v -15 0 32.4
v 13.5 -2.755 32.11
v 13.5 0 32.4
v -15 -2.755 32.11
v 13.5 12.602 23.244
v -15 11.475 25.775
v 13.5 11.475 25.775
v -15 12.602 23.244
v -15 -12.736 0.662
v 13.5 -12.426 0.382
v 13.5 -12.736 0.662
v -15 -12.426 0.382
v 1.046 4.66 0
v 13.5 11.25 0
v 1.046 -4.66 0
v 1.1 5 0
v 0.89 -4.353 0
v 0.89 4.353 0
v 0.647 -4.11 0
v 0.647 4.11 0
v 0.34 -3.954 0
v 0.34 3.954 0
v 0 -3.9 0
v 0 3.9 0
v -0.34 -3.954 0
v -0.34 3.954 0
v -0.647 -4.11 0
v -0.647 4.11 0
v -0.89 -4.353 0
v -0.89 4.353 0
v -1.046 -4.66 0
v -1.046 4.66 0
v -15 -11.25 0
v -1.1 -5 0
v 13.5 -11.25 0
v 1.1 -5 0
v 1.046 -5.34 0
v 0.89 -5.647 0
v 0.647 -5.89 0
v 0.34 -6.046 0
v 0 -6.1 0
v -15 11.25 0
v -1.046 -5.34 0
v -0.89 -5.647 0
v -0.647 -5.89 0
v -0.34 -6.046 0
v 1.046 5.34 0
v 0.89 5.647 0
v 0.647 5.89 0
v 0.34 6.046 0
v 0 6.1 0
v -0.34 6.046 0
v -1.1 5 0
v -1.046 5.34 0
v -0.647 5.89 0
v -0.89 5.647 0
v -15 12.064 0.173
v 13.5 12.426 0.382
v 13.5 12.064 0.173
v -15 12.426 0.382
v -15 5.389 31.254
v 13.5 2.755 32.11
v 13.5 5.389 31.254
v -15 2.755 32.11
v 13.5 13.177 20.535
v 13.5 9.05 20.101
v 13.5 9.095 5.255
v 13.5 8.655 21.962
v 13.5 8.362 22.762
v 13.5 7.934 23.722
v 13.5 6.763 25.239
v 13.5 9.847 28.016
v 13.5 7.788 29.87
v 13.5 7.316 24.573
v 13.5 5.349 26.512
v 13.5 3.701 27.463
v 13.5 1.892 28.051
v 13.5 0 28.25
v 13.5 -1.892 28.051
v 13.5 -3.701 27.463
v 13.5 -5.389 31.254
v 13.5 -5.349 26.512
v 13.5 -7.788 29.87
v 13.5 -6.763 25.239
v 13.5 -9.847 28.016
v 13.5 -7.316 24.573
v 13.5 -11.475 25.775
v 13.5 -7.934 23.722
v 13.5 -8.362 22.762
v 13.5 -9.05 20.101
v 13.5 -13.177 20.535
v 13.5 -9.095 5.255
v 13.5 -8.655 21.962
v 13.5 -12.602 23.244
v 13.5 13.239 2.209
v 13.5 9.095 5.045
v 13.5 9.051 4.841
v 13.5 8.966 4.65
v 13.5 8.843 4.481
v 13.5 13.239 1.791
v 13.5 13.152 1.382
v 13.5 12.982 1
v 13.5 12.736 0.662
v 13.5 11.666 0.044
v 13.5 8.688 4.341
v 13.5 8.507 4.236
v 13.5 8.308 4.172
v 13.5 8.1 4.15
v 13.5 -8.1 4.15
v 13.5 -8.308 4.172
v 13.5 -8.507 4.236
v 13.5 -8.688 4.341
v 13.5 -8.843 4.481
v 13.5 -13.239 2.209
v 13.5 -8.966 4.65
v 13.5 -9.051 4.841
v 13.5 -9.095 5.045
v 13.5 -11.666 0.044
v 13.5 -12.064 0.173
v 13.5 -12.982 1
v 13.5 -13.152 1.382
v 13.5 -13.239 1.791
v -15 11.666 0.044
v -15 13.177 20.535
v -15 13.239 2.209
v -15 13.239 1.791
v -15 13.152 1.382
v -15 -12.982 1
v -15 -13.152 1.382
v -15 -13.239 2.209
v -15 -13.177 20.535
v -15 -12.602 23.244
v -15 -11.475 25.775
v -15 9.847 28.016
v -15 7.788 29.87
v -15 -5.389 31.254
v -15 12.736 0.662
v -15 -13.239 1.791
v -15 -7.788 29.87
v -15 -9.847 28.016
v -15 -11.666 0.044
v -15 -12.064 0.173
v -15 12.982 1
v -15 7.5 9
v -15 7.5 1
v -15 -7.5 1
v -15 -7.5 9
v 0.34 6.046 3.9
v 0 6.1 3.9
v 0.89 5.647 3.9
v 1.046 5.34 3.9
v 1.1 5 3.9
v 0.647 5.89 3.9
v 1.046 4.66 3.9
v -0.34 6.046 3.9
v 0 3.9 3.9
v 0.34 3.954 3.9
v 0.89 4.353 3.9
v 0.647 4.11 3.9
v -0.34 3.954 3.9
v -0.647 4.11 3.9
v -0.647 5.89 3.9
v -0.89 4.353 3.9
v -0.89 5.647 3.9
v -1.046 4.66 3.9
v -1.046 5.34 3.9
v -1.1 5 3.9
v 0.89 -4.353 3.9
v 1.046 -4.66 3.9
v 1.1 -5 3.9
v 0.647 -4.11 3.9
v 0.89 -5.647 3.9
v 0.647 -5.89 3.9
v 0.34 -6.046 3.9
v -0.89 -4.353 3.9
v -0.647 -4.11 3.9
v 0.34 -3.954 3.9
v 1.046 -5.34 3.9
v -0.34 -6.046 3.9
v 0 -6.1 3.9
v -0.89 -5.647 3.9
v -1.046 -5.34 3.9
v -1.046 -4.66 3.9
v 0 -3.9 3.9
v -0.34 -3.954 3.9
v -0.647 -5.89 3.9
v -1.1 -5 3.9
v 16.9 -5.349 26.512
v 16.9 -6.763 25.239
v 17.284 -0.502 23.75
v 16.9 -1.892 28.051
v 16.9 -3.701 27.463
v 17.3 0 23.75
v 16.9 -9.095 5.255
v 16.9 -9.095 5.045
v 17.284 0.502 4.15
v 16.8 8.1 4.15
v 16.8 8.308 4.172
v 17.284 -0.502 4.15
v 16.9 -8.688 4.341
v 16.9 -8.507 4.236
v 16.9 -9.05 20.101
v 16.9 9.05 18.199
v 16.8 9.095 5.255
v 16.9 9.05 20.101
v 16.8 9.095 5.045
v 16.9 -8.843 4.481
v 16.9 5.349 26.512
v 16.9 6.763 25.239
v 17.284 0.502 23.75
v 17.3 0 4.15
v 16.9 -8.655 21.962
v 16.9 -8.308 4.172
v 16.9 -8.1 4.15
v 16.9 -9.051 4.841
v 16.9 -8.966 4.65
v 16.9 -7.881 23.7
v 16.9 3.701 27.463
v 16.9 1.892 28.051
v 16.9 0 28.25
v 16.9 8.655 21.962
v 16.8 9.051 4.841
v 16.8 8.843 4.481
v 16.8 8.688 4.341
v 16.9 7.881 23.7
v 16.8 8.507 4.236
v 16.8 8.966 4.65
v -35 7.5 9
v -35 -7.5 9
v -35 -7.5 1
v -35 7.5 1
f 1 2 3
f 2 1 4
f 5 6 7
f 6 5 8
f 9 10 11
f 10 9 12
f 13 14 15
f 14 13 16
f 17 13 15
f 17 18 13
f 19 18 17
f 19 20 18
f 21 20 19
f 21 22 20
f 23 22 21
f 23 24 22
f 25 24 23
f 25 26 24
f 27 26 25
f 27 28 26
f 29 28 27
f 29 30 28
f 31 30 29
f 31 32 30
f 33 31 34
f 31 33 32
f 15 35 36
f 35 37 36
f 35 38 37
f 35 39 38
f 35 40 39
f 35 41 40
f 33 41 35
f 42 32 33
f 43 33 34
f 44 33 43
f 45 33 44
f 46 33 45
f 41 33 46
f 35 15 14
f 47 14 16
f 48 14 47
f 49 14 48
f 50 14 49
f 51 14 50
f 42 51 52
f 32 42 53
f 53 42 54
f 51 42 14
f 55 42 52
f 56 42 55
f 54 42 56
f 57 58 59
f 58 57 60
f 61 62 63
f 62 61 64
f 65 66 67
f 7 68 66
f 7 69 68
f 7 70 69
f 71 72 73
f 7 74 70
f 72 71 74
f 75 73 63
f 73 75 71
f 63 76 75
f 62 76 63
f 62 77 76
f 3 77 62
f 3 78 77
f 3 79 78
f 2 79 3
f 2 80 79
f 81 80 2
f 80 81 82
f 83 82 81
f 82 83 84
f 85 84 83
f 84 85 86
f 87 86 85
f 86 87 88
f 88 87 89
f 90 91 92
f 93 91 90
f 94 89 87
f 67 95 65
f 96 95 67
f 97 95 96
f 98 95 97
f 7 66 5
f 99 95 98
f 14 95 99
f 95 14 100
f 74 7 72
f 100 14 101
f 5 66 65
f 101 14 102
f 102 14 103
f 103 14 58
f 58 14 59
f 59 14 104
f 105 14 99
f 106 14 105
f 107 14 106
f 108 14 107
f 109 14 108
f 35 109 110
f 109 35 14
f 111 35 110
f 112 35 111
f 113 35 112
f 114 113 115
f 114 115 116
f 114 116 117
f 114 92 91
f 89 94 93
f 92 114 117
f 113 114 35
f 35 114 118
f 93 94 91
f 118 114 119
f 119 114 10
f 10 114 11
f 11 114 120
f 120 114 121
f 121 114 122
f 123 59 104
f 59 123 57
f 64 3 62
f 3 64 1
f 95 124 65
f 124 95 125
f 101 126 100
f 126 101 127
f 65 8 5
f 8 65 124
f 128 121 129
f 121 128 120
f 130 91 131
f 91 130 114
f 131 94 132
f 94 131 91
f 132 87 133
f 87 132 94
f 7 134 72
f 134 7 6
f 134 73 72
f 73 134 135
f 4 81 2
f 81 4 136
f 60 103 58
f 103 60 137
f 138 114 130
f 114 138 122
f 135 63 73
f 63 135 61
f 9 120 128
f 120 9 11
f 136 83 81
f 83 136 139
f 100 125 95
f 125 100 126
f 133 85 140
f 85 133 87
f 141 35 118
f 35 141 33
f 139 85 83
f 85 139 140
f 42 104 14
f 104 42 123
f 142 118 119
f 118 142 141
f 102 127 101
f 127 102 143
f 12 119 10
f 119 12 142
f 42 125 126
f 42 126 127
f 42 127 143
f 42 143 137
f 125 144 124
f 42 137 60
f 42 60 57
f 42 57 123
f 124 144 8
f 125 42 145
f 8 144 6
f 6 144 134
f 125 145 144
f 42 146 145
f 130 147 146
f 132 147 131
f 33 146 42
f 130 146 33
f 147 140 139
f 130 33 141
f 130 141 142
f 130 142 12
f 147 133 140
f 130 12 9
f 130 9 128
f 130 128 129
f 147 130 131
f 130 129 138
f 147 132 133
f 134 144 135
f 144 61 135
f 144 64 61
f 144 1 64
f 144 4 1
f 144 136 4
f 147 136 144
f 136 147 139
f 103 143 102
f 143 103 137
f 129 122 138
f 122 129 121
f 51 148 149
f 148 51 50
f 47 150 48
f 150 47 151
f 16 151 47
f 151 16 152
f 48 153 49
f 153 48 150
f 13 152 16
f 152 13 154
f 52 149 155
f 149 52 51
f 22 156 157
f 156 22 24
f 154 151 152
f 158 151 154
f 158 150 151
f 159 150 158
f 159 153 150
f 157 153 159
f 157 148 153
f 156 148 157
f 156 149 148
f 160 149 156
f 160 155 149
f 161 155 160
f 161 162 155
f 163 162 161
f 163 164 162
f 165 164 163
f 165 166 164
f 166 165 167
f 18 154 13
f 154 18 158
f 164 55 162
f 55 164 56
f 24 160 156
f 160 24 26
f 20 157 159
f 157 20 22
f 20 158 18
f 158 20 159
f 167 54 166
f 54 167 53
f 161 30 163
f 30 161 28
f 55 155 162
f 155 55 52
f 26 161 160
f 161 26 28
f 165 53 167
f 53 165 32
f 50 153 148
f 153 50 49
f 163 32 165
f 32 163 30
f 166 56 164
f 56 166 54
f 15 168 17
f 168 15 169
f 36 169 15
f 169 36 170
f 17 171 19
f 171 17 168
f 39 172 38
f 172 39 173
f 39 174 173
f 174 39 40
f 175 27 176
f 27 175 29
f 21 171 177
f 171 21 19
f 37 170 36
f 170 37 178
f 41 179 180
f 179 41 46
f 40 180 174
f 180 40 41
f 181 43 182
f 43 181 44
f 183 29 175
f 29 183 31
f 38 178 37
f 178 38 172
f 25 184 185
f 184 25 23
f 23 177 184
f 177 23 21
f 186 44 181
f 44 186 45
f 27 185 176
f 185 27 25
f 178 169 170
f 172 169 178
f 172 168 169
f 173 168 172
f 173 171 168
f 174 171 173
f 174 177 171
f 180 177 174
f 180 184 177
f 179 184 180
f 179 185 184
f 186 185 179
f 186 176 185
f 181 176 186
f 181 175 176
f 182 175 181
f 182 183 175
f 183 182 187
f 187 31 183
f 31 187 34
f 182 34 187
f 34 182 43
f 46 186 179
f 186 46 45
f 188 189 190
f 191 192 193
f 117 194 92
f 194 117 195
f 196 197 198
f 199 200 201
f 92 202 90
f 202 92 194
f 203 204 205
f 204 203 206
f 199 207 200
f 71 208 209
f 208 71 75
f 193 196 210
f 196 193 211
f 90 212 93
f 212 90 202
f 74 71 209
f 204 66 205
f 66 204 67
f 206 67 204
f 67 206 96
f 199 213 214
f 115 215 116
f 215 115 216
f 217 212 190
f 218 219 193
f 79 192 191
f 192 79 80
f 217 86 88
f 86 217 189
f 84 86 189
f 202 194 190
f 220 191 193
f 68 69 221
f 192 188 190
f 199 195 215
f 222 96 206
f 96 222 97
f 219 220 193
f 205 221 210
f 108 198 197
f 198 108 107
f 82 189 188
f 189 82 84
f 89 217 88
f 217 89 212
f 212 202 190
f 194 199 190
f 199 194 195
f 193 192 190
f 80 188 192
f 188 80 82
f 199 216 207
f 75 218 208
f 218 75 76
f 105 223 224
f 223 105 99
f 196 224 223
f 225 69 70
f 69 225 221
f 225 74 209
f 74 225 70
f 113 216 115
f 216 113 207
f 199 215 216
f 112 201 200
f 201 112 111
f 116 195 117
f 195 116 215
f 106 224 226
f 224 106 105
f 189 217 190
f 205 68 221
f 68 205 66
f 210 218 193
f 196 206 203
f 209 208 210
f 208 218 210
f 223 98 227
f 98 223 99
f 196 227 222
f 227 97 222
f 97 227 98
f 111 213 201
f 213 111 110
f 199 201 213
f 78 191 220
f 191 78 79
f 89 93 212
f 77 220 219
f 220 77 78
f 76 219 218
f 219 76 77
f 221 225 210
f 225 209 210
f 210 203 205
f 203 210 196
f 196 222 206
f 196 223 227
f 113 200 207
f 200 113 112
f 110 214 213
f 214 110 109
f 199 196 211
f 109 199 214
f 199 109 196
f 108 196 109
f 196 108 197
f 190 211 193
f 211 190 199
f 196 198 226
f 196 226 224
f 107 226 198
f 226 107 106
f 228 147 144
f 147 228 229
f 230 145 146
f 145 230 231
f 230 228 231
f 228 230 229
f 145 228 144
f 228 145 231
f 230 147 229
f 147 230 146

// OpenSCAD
/** simplified mesh for the Facebook DIGIT tactile sensor.
 * 
 * (c) 2022, fnh, hendrich@informatik.uni-hamburg.de
 */
 
 digit_sensor();
 
 
 /**
  * simplified model of the DIGIT sensor.
  * Sensor points towards +x, origin is at the bottom.
  */
 module digit_sensor( usb_connector=[20,15,8], M2_bore=2.2 ) {
   w = 26.5;
   h = 32.4;  // without top ridge
   hh = 33.7; // with ridge  
   l  = 28.5; // without gel
   ll = 32.3; // with gel
   gw = 18.2; // gel width
   gh = 24.6; // gel height
   ss = 10.0; // distance between screws
   sl = 15.0; // screw center from back face
   rb =  2.0; // bottom bevel radius
   uh =  5.0; 
   uw =  9.9;
   ur =  2.0;
   ul =  4.0;

   rc = w/2;  // radius of main housing
   rd = gw/2; // top radius of gel
   re = 1;    // bottom radius of gel part
   border = (w - gw) / 2;

   color( [0.5,0.1,0.1,0.8] )    
   translate( [-sl,0,0] ) 
   difference() {
     hull() {
       translate( [0,+w/2-rb,rb] ) 
         rotate( [0,90,0] ) 
           cylinder( r=rb, h=l, center=false, $fn=30 );
       translate( [0,-w/2+rb,rb] ) 
         rotate( [0,90,0] ) 
           cylinder( r=rb, h=l, center=false, $fn=30 );
       translate( [0,0,h-rc] ) 
         rotate( [0,90,0] ) 
           cylinder( r=rc, h=l, center=false, $fn=30 );
     }
     
     // mounting screws
     translate( [sl, +ss/2, -0.1] ) cylinder( d=M2_bore, h=4, center=false, $fn=20 );
     translate( [sl, -ss/2, -0.1] ) cylinder( d=M2_bore, h=4, center=false, $fn=20 );
   }
   
   color( "white" )
   translate( [-sl,0,0] ) 
   hull() {
     translate( [l,+gw/2-re,border+re] ) 
       rotate( [0,90,0] ) 
         cylinder( r=re, h=ll-l-0.5, center=false, $fn=30 );
     translate( [l,-gw/2+re,border+re] ) 
       rotate( [0,90,0] ) 
         cylinder( r=re, h=ll-l-0.4, center=false, $fn=30 );
     translate( [l,0,h-border-rd] ) 
       rotate( [0,90,0] ) 
         cylinder( r=rd, h=ll-l-0.4, center=false, $fn=30 );
     translate( [ll-8,0,border] )
       cylinder( r=8, h=gh-5, center=false, $fn=100 );
   }
   
   // usb plug
   color( "blue" )
   hull() {
     translate( [-sl-0.1,-uw/2,uh] ) 
       rotate( [0,90,0] ) 
         cylinder( r=ur, h=ul, center=false, $fn=30 );
     translate( [-sl-0.1,+uw/2,uh] ) 
       rotate( [0,90,0] ) 
         cylinder( r=ur, h=ul, center=false, $fn=30 );
   }
   
   // usb connector (if non-zero)
   if (len(usb_connector) == 3) {
     color( "orange" )
     translate( [-sl-usb_connector[0]/2, 0,uh] ) 
       cube( size=usb_connector, center=true );
   }
}
 
